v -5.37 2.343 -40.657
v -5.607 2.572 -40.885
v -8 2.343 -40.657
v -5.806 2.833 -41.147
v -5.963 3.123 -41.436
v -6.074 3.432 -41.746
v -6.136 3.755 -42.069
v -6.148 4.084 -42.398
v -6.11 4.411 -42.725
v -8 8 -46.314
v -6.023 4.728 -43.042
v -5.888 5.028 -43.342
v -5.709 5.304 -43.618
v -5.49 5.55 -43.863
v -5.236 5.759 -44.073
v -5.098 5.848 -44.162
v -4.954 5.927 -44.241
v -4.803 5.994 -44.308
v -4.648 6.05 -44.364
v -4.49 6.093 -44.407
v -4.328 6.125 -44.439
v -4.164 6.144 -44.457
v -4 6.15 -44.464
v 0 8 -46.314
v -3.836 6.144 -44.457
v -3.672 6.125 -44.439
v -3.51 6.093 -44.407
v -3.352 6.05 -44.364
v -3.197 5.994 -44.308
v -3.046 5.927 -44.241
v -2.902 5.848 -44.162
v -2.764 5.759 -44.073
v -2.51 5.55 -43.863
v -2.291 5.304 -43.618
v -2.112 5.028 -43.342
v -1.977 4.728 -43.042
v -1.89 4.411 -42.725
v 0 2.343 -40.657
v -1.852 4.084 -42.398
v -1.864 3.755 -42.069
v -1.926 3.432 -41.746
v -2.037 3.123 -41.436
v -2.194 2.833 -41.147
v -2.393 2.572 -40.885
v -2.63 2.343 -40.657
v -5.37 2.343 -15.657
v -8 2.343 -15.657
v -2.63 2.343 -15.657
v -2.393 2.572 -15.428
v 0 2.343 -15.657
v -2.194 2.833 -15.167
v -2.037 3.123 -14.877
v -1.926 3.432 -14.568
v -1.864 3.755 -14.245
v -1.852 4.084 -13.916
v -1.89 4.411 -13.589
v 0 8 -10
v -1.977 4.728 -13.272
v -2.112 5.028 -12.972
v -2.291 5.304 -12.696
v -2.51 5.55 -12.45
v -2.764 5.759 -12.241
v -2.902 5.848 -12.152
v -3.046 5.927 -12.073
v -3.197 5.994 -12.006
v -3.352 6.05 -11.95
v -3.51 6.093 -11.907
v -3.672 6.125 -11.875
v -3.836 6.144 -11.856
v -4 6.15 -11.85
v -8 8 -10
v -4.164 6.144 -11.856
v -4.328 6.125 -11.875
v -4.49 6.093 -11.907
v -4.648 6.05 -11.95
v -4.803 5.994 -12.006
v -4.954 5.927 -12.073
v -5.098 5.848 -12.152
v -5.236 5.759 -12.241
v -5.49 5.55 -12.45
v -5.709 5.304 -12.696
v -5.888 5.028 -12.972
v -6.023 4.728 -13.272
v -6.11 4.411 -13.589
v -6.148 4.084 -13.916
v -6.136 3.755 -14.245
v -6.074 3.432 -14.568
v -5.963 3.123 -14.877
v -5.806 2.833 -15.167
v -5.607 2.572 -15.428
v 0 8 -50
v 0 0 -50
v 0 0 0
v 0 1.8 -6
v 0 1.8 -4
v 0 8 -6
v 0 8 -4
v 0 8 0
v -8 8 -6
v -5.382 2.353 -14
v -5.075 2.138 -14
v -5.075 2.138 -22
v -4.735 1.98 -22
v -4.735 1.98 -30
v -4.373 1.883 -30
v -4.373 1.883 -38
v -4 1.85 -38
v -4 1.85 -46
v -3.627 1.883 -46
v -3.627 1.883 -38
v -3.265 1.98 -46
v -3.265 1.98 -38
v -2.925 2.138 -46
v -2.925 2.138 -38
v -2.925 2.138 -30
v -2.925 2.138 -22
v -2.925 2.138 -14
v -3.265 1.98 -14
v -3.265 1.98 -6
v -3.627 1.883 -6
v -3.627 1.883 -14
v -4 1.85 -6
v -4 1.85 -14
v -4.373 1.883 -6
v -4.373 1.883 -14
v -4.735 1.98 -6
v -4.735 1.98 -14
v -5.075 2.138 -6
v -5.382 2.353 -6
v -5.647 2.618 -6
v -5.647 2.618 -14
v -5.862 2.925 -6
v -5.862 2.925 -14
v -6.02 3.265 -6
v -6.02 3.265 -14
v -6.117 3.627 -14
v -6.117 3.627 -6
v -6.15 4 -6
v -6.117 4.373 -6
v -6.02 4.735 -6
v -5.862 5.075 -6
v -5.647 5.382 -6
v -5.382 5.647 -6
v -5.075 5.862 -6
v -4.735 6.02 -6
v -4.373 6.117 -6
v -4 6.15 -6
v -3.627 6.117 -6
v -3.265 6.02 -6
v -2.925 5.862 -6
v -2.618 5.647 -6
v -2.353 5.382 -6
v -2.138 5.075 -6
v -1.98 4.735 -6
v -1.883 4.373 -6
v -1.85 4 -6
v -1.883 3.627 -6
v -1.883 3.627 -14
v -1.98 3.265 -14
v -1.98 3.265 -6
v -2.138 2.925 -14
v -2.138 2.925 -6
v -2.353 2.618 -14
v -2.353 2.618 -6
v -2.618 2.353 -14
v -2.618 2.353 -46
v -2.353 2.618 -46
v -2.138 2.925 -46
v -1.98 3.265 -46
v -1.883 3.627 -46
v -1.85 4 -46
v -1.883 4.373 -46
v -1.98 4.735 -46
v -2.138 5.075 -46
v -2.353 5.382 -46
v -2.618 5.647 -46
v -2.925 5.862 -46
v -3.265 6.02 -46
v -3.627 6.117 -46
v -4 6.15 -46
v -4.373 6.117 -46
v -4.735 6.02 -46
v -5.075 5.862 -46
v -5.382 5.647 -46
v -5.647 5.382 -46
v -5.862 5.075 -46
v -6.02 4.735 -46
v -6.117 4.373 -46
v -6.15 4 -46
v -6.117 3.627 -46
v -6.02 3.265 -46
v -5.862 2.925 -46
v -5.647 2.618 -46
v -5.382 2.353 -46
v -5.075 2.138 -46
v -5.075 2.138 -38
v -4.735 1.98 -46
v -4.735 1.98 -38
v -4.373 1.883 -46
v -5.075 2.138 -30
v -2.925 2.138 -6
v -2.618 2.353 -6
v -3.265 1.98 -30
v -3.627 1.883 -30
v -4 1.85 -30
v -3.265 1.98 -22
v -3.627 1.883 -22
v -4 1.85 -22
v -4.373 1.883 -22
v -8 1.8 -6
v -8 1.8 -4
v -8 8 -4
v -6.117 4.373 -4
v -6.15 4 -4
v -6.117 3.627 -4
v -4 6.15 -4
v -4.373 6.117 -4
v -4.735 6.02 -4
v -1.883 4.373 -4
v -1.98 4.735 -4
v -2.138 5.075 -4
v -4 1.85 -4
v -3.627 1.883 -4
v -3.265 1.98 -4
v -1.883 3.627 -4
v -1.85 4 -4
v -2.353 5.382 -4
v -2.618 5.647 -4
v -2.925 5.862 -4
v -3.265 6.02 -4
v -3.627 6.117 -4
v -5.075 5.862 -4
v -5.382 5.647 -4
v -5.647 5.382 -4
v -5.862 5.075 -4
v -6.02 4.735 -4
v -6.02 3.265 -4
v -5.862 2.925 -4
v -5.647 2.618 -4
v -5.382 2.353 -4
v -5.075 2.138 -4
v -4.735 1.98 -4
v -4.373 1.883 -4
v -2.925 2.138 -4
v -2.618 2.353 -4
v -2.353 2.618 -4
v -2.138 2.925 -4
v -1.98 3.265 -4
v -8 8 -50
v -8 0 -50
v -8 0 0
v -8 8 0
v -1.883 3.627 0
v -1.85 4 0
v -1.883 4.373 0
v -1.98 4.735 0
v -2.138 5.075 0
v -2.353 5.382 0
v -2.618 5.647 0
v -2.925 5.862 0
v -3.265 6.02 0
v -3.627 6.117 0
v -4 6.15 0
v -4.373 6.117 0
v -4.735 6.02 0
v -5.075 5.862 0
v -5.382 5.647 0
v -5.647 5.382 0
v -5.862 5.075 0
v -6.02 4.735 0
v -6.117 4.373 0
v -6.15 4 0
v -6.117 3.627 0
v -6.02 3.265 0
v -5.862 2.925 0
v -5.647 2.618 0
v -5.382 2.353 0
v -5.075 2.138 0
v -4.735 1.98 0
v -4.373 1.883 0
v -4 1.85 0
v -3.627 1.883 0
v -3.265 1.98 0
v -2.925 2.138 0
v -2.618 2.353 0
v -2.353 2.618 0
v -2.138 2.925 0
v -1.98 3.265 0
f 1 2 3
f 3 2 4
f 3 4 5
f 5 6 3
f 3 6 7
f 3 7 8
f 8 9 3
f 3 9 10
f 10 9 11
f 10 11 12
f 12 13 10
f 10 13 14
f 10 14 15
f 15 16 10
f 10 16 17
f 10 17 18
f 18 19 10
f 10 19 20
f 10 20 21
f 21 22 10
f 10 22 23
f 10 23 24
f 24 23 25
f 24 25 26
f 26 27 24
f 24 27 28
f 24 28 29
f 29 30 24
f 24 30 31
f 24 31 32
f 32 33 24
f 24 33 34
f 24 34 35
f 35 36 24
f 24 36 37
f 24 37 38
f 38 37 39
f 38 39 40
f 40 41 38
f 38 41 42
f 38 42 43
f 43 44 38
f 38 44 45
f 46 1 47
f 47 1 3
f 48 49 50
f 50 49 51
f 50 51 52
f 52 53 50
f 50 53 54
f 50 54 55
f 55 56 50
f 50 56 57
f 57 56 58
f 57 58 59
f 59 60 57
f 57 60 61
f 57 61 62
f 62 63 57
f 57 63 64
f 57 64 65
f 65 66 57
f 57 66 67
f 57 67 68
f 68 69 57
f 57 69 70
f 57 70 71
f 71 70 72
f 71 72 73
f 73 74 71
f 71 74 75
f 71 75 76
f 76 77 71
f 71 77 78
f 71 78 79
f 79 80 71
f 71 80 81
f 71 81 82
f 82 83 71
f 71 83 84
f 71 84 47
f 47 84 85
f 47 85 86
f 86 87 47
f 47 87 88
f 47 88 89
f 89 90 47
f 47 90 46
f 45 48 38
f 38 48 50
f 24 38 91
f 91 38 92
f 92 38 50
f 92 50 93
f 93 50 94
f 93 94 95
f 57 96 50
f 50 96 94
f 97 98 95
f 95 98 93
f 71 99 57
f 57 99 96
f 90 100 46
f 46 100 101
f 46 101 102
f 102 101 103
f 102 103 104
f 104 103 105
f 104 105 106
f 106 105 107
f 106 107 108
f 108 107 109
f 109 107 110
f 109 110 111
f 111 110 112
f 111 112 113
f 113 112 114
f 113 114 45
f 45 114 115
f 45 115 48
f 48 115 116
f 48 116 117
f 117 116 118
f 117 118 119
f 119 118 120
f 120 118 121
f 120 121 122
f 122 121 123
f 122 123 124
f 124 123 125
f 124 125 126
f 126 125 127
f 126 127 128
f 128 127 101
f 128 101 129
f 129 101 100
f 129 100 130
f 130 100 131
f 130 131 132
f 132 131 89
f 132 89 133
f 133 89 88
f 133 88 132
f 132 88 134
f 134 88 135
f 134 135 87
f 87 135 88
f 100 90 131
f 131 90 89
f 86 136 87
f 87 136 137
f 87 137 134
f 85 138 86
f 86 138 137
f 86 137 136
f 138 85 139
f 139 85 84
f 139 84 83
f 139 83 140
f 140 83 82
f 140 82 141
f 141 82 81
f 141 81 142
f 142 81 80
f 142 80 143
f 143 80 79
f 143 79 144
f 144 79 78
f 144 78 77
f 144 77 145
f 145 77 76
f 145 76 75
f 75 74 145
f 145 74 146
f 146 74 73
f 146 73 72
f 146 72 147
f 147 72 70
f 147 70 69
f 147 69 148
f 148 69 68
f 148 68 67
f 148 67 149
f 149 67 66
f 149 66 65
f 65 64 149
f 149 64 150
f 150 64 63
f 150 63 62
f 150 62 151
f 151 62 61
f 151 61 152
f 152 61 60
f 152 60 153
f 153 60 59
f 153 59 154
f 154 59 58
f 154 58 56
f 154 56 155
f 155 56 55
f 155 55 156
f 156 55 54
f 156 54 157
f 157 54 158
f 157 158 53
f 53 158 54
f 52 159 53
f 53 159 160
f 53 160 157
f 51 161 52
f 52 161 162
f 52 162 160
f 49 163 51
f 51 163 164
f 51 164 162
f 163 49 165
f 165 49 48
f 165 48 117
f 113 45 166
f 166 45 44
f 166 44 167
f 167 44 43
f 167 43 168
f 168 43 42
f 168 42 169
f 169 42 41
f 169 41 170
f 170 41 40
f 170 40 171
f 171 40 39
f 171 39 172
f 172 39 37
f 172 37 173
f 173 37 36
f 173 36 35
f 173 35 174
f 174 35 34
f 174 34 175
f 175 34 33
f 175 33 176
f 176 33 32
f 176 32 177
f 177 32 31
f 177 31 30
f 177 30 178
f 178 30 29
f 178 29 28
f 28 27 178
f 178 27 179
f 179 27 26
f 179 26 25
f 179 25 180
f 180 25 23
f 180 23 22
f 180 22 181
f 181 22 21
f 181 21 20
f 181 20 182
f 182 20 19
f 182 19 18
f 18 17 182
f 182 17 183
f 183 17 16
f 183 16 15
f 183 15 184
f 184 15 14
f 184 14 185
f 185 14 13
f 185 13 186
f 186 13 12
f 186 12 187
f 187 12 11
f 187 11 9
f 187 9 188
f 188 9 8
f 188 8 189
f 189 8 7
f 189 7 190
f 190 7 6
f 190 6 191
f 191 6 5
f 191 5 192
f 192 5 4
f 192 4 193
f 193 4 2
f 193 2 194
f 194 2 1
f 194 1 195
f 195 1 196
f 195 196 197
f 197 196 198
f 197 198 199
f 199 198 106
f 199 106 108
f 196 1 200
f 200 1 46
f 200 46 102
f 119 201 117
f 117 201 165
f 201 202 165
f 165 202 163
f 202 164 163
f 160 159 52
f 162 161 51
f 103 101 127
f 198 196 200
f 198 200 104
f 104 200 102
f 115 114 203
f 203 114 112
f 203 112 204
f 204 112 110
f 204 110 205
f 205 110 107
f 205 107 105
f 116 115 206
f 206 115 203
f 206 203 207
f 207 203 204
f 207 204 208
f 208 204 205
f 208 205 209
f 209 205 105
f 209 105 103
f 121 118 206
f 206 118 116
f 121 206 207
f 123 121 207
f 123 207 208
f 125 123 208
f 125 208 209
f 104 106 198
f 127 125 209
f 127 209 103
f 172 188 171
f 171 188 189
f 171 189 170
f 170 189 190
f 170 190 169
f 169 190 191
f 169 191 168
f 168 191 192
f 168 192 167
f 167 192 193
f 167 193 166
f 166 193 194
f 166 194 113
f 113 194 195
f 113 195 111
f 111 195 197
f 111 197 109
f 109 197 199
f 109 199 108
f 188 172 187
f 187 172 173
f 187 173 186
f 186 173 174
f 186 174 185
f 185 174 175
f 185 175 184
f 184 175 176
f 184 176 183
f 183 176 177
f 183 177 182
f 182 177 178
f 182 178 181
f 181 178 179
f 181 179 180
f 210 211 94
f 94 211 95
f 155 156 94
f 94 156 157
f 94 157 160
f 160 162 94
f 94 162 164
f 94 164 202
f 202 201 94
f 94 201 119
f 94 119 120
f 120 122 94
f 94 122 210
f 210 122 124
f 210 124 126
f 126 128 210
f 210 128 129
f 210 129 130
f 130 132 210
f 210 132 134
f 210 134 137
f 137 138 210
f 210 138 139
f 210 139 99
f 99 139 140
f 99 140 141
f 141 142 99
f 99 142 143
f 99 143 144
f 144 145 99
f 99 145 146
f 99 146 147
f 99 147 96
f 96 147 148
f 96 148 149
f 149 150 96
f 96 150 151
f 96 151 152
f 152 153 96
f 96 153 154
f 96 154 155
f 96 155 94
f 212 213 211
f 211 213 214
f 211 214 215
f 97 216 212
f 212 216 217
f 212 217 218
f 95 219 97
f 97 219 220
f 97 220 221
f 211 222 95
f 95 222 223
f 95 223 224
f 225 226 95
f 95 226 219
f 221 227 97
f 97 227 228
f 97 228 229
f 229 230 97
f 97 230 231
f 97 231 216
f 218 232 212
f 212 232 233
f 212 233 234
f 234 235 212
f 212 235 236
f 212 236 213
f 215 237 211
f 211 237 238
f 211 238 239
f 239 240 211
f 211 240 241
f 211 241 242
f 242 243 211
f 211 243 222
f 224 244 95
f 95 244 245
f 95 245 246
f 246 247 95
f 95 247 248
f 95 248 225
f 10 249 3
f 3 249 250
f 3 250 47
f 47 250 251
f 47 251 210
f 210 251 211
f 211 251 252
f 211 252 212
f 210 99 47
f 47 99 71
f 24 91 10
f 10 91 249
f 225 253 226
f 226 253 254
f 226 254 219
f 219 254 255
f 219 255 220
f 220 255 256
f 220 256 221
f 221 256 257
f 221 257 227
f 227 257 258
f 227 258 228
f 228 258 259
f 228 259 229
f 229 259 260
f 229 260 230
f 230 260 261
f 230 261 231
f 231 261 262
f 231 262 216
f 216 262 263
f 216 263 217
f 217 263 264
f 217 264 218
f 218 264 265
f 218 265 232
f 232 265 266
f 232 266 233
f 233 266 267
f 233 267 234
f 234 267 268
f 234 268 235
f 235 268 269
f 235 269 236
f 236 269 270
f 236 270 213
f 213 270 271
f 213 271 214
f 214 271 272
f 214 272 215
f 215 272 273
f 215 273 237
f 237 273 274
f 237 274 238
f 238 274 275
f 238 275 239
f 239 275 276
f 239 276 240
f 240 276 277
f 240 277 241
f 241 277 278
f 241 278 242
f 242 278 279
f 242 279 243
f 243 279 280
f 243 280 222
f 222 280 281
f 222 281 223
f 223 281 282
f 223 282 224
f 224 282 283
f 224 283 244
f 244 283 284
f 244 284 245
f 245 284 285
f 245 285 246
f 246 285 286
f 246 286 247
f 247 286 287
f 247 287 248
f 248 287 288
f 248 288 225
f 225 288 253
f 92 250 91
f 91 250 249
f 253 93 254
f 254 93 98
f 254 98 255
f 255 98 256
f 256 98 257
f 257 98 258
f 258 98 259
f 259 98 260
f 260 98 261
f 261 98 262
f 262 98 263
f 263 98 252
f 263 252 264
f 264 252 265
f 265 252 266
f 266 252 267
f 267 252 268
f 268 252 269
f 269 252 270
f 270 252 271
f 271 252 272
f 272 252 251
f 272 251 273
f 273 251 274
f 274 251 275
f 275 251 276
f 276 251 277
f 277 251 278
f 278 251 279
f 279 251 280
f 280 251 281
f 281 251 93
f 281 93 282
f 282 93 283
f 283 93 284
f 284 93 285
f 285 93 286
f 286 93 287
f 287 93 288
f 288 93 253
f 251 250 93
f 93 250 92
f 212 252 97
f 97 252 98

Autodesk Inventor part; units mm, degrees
ref_plane "YZ Plane" through (0, 0, 0) normal (1, 0, 0) x (0, 1, 0)
ref_plane "XZ Plane" through (0, 0, 0) normal (0, 1, 0) x (-1, 0, 0)
ref_plane "XY Plane" through (0, 0, 0) normal (0, 0, 1) x (1, 0, 0)
sketch "Sketch1" plane through (0, 0, 0) normal (0, 1, 0) x (-1, 0, 0)
  line L0 (0, 0) -> (8, 0)
  line L1 (8, 0) -> (8, -50)
  line L2 (8, -50) -> (0, -50)
  line L3 (0, -50) -> (0, 0)
  dimension "d0" = 8
  dimension "d1" = 50
extrude "Extrusion1" add sketch "Sketch1" along normal blind 8
sketch "Sketch2" plane through (-8, 0, 0) normal (0, 0, 1) x (1, 0, 0)
  circle A0 centre (4, 4) radius 2.15
  point P0 (8, 0)
  dimension "d4" = 4.3
extrude "Extrusion2" cut sketch "Sketch2" against normal blind 4
sketch "Sketch3" plane through (0, 8, 0) normal (0, 1, 0) x (1, 0, 0)
  line L0 (-10.8104, 6) -> (3.7678, 6)
  line L1 (3.7678, 6) -> (3.7678, 4)
  line L2 (3.7678, 4) -> (-10.8104, 4)
  line L3 (-10.8104, 4) -> (-10.8104, 6)
  line L4 (-8, 0) -> (0, 0) projected
  dimension "d8" = 2
  dimension "d9" = 4
extrude "Extrusion3" cut sketch "Sketch3" against normal blind 6.2
sketch "Sketch4" plane through (-8, 8, -6) normal (0, 0, 1) x (1, 0, 0)
  circle A0 centre (4, -4) radius 2.15 projected
  circle A1 centre (4, -4) radius 2.15
  point P0 (8, -8)
extrude "Extrusion4" cut sketch "Sketch4" against normal blind 40
sketch "Sketch5" plane through (0, 0, 0) normal (1, 0, 0) x (0, 0, -1)
  line L0 (6, 8) -> (50, 8) projected
  line L1 (6, 8) -> (10, 8)
  line L2 (10, 8) -> (15.6569, 2.3431)
  line L3 (15.6569, 2.3431) -> (40.6569, 2.3431)
  line L4 (6, 1.85) -> (46, 1.85) projected
  line L5 (40.6569, 2.3431) -> (46.3137, 8)
  line L6 (46.3137, 8) -> (10, 8)
  point P0 (0, 0)
  dimension "d14" = 4
  dimension "d15" = 8
  dimension "d16" = 135
  dimension "d17" = 25
  dimension "d18" = 135
extrude "Extrusion5" cut sketch "Sketch5" against normal blind 40
properties part number "ptfe_cutter_v6_40mm"
